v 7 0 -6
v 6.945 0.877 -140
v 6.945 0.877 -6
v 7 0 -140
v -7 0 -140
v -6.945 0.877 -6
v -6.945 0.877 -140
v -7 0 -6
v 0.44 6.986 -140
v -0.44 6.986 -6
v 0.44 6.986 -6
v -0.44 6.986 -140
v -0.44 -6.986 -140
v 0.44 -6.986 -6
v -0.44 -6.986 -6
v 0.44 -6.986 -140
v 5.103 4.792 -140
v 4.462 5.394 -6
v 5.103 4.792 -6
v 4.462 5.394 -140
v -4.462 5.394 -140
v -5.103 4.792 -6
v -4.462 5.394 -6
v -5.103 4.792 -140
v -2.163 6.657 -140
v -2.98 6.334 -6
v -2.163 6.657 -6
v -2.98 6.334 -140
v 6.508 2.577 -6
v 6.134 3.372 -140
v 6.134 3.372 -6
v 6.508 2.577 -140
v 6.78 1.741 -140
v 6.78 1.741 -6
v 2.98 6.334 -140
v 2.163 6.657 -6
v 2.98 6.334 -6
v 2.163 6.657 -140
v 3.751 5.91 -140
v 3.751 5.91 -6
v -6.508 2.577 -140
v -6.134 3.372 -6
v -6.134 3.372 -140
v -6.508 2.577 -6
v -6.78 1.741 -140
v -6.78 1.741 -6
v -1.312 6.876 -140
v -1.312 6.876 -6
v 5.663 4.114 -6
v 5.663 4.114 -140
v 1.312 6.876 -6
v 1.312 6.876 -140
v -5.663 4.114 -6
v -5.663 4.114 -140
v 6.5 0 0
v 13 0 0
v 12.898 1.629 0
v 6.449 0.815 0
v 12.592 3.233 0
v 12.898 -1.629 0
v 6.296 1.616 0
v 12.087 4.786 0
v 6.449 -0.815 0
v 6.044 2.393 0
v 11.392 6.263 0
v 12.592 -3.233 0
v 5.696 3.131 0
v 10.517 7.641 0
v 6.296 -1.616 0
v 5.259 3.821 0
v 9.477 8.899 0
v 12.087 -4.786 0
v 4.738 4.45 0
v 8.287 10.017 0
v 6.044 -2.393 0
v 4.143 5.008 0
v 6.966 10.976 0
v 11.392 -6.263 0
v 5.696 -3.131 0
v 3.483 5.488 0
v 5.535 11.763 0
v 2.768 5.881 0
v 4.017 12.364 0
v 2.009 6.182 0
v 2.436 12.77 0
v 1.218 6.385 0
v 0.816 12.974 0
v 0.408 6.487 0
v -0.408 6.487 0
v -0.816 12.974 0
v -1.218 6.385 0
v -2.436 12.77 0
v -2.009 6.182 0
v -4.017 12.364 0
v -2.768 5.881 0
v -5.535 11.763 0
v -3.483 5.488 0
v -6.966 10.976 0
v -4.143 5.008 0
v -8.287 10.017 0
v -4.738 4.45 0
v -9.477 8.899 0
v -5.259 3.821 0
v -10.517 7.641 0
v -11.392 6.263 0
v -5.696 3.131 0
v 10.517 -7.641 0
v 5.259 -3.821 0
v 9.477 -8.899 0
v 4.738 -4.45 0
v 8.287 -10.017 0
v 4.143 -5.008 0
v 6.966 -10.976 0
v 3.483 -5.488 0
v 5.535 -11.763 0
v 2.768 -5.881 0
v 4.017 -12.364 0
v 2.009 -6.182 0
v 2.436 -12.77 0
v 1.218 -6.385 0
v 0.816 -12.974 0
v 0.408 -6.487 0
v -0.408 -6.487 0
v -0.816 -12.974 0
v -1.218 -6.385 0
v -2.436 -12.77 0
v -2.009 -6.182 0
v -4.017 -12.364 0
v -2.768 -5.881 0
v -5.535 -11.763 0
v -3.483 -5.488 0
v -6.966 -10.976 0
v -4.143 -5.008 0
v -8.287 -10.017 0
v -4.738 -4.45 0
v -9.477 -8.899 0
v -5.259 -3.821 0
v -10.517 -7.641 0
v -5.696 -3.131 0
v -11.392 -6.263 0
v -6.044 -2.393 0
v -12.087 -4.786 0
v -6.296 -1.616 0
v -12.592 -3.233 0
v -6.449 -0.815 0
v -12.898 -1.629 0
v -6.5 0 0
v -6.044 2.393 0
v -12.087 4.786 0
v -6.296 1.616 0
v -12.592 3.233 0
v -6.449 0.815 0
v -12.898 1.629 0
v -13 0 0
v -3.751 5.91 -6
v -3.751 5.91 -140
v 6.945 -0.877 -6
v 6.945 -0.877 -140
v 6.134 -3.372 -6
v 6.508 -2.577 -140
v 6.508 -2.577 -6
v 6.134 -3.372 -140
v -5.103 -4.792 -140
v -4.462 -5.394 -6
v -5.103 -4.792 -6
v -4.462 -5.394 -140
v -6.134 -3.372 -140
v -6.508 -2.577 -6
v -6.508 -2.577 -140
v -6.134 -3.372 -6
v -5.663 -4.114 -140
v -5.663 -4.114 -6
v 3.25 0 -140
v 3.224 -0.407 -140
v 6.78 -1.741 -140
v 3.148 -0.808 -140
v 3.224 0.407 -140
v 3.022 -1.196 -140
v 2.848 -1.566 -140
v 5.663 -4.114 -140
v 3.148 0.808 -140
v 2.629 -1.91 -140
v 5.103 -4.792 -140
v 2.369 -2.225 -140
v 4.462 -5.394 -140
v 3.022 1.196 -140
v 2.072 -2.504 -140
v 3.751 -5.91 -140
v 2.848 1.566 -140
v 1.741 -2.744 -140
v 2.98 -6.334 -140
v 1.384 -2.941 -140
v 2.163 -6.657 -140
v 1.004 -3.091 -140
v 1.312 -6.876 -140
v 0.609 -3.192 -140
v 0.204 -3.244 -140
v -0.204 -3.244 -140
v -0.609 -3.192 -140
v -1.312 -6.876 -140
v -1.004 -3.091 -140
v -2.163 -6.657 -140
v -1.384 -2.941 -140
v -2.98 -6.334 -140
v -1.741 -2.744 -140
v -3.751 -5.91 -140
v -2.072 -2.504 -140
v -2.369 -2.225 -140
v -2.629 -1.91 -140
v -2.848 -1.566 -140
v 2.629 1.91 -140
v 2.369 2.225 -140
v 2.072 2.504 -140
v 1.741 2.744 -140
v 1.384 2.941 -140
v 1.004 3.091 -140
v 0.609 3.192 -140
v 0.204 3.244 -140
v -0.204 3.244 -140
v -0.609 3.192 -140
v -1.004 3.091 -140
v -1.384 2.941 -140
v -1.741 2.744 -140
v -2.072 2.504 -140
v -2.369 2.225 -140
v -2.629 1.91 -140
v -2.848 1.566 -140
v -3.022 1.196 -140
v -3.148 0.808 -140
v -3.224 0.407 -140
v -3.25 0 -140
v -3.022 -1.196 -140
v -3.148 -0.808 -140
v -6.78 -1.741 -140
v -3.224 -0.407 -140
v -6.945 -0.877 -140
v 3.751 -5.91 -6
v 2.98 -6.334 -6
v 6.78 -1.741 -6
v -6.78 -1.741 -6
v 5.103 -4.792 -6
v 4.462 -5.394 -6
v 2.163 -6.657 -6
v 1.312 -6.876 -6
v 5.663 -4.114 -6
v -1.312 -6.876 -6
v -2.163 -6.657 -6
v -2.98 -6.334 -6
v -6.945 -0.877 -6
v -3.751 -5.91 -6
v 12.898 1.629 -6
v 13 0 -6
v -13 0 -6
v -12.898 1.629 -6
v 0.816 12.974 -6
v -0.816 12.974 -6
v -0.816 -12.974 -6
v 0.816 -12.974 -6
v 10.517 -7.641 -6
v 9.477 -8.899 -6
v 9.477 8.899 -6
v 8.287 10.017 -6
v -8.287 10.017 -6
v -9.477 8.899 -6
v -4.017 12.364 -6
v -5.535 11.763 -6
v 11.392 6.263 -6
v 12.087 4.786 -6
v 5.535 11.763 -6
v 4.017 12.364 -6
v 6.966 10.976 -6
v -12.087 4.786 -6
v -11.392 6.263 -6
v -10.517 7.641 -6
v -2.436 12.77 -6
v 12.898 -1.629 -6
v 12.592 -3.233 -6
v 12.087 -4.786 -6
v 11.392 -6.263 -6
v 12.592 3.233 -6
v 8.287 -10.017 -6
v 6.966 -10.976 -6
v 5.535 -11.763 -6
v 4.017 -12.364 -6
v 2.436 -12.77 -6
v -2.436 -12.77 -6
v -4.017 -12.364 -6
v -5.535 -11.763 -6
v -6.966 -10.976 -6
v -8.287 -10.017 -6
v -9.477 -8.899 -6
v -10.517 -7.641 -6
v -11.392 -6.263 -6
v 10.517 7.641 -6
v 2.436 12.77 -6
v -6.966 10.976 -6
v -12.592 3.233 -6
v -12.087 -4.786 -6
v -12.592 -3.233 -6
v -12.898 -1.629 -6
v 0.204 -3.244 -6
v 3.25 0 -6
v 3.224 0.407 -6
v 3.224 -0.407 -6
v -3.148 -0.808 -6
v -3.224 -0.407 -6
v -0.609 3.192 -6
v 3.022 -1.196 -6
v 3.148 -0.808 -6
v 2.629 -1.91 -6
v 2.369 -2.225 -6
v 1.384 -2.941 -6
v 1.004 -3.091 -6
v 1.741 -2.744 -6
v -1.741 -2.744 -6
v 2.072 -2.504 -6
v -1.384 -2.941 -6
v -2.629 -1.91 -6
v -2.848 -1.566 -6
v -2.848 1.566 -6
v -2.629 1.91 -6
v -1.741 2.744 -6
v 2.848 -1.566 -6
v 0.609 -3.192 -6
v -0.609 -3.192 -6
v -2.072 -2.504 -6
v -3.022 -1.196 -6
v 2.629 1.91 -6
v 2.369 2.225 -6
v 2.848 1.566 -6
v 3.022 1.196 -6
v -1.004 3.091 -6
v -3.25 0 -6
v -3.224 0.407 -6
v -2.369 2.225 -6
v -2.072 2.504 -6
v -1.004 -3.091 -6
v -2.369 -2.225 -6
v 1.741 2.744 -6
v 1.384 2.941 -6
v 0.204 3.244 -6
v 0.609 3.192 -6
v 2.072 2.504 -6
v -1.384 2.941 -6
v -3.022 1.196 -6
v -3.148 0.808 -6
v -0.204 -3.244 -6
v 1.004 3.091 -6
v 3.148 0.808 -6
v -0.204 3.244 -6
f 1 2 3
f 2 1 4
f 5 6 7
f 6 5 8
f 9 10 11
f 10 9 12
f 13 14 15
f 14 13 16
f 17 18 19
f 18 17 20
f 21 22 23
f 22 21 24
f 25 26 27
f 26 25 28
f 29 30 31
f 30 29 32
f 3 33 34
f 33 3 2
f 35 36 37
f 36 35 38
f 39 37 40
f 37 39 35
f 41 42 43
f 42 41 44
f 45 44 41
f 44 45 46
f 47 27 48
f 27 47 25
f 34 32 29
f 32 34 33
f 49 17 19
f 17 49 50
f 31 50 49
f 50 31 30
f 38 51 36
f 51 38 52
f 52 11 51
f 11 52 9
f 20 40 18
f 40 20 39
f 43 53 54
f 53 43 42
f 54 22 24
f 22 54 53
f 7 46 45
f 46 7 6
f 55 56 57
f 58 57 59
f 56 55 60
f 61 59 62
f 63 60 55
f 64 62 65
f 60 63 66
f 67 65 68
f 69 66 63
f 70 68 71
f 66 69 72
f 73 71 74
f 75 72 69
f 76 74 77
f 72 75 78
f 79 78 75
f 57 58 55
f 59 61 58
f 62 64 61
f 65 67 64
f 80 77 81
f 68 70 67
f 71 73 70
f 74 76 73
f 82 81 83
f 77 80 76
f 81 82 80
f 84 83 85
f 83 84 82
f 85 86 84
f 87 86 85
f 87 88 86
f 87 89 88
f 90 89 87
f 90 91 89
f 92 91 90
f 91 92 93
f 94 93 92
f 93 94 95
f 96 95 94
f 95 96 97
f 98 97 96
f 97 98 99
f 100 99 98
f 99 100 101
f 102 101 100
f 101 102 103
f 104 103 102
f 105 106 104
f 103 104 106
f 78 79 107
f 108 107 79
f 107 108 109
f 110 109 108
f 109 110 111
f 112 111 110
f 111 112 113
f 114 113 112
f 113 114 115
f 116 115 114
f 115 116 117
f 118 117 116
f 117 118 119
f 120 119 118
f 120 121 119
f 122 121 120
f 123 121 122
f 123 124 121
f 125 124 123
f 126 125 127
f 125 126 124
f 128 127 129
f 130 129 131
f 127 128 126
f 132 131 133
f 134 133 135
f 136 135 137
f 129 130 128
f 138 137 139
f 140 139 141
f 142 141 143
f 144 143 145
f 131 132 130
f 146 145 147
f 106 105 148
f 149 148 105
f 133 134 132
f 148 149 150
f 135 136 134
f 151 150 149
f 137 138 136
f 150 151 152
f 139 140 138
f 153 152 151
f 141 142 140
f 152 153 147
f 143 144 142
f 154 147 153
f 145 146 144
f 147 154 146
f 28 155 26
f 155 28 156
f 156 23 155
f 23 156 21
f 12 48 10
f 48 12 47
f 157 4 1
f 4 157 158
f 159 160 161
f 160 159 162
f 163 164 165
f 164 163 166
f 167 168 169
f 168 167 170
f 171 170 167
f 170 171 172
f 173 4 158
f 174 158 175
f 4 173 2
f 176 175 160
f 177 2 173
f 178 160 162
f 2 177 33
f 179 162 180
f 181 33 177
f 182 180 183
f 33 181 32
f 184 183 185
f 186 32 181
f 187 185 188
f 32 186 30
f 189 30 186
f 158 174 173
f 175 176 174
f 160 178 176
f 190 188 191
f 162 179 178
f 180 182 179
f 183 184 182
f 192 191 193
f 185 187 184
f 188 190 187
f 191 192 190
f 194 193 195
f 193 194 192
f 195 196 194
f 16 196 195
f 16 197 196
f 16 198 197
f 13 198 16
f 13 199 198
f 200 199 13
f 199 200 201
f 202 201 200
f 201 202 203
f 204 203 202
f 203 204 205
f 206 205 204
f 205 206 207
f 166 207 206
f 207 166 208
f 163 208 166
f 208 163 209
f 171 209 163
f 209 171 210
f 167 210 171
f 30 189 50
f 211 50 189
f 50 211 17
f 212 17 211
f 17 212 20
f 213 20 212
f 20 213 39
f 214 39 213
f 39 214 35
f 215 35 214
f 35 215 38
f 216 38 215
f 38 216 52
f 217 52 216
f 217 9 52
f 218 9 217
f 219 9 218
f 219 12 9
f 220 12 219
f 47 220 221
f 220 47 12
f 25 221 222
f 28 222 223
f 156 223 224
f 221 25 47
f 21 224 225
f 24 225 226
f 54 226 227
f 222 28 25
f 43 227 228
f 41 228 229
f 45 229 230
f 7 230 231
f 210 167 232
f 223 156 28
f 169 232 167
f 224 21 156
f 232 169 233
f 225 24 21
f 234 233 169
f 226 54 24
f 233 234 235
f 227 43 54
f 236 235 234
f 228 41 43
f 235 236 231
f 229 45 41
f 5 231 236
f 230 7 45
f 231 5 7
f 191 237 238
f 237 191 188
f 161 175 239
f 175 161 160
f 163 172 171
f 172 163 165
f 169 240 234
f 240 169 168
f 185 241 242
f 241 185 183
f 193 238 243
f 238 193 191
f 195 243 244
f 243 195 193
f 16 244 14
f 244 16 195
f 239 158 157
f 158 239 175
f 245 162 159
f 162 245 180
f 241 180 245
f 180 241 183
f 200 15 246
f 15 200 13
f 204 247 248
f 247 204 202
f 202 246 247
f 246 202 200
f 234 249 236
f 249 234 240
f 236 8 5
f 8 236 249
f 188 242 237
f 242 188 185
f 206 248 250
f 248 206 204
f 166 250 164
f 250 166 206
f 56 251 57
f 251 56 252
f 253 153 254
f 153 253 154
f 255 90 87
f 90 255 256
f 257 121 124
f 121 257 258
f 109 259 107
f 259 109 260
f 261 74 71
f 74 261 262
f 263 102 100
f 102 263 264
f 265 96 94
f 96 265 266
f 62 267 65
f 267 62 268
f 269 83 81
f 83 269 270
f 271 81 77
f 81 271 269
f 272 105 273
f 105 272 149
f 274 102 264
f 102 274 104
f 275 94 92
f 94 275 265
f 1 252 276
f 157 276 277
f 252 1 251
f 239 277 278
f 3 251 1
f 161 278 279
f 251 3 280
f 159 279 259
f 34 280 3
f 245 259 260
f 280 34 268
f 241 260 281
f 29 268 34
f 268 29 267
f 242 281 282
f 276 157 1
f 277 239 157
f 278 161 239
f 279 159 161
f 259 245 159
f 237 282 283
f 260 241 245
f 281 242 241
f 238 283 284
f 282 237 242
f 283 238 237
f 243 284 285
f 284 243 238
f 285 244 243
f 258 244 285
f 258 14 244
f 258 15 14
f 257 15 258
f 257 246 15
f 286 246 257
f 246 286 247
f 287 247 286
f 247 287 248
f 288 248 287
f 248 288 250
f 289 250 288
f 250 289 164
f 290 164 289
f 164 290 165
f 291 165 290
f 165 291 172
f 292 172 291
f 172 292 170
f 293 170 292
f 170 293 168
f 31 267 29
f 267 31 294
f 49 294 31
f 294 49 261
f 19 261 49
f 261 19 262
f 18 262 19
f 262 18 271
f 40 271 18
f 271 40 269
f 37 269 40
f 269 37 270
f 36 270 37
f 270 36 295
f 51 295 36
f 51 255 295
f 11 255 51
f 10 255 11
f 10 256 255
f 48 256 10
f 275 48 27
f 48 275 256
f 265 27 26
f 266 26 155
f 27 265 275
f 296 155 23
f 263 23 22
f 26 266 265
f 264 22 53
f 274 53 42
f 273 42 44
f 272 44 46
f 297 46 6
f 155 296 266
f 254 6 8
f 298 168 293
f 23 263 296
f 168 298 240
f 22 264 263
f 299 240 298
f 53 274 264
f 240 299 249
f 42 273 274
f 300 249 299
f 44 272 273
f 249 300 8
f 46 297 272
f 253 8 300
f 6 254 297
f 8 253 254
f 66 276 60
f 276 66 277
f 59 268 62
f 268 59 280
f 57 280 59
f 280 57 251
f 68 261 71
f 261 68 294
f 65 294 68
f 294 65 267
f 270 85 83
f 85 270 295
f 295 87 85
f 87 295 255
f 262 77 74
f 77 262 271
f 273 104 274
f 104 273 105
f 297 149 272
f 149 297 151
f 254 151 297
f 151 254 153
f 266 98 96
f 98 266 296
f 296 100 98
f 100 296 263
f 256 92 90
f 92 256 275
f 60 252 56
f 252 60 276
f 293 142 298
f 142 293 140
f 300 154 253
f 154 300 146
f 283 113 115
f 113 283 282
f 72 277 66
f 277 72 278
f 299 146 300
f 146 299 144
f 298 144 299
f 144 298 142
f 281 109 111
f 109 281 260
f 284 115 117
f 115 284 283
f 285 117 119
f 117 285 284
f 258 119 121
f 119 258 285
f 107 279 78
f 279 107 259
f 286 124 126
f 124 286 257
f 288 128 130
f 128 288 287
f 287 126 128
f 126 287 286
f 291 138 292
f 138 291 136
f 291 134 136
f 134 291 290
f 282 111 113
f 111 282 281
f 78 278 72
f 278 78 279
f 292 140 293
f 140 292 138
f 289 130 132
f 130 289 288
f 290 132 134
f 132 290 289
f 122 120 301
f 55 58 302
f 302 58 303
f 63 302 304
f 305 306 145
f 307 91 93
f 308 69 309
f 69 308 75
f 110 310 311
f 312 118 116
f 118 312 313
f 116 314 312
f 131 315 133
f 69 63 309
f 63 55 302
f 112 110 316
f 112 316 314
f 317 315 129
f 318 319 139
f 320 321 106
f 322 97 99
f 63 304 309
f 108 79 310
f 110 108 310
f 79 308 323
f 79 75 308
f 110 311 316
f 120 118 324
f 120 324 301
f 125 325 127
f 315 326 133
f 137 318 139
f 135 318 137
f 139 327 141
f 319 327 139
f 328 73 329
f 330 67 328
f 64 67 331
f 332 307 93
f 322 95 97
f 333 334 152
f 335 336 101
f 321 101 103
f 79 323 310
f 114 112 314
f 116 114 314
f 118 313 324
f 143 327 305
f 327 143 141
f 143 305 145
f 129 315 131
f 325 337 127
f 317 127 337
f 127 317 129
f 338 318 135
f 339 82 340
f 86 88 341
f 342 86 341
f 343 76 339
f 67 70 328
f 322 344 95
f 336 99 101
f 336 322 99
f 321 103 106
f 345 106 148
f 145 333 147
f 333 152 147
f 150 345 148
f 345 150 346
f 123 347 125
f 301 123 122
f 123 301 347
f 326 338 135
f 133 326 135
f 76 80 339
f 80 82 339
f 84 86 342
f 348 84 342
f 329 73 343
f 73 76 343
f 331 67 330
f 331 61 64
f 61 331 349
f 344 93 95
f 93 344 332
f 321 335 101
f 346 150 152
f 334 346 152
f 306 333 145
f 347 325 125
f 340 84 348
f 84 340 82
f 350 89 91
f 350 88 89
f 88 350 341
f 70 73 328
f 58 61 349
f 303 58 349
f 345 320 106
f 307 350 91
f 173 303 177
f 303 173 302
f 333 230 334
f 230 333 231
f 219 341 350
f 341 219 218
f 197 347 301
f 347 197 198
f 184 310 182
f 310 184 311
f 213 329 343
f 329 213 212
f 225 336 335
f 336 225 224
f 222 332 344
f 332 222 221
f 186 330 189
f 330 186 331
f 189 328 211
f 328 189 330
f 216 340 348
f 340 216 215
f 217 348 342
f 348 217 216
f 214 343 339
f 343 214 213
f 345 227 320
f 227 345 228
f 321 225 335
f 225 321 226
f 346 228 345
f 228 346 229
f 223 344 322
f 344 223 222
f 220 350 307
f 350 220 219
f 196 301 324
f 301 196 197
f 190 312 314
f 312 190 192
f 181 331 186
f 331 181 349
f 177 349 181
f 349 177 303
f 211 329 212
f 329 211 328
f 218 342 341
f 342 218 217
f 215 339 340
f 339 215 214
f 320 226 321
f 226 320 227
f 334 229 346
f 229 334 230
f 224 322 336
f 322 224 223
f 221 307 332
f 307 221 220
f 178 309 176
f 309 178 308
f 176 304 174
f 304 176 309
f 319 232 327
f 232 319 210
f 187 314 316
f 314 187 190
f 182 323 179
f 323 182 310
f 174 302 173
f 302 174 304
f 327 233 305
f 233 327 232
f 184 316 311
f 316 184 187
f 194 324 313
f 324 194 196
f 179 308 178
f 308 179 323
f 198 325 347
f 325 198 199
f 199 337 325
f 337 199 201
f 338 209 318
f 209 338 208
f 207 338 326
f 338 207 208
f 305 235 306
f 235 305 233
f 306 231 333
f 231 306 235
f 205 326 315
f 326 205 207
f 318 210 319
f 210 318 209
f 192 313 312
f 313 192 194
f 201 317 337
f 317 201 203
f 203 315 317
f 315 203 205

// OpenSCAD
$fn = 50;


difference() {
	union() {
		translate(v = [0, 0, -140.0000000000]) {
			cylinder(h = 140, r = 7.0000000000);
		}
		translate(v = [0, 0, -6.0000000000]) {
			cylinder(h = 6, r = 13.0000000000);
		}
	}
	union() {
		translate(v = [0, 0, 0]) {
			rotate(a = [0, 0, 0]) {
				difference() {
					union() {
						#translate(v = [0, 0, -140.0000000000]) {
							cylinder(h = 140, r = 2.2500000000);
						}
						#translate(v = [0, 0, -6]) {
							cylinder(h = 6, r1 = 3.2500000000, r2 = 6.5000000000);
						}
						#translate(v = [0, 0, -140.0000000000]) {
							cylinder(h = 140, r = 3.2500000000);
						}
						#translate(v = [0, 0, -140.0000000000]) {
							cylinder(h = 140, r = 2.2500000000);
						}
					}
					union();
				}
			}
		}
	}
}
